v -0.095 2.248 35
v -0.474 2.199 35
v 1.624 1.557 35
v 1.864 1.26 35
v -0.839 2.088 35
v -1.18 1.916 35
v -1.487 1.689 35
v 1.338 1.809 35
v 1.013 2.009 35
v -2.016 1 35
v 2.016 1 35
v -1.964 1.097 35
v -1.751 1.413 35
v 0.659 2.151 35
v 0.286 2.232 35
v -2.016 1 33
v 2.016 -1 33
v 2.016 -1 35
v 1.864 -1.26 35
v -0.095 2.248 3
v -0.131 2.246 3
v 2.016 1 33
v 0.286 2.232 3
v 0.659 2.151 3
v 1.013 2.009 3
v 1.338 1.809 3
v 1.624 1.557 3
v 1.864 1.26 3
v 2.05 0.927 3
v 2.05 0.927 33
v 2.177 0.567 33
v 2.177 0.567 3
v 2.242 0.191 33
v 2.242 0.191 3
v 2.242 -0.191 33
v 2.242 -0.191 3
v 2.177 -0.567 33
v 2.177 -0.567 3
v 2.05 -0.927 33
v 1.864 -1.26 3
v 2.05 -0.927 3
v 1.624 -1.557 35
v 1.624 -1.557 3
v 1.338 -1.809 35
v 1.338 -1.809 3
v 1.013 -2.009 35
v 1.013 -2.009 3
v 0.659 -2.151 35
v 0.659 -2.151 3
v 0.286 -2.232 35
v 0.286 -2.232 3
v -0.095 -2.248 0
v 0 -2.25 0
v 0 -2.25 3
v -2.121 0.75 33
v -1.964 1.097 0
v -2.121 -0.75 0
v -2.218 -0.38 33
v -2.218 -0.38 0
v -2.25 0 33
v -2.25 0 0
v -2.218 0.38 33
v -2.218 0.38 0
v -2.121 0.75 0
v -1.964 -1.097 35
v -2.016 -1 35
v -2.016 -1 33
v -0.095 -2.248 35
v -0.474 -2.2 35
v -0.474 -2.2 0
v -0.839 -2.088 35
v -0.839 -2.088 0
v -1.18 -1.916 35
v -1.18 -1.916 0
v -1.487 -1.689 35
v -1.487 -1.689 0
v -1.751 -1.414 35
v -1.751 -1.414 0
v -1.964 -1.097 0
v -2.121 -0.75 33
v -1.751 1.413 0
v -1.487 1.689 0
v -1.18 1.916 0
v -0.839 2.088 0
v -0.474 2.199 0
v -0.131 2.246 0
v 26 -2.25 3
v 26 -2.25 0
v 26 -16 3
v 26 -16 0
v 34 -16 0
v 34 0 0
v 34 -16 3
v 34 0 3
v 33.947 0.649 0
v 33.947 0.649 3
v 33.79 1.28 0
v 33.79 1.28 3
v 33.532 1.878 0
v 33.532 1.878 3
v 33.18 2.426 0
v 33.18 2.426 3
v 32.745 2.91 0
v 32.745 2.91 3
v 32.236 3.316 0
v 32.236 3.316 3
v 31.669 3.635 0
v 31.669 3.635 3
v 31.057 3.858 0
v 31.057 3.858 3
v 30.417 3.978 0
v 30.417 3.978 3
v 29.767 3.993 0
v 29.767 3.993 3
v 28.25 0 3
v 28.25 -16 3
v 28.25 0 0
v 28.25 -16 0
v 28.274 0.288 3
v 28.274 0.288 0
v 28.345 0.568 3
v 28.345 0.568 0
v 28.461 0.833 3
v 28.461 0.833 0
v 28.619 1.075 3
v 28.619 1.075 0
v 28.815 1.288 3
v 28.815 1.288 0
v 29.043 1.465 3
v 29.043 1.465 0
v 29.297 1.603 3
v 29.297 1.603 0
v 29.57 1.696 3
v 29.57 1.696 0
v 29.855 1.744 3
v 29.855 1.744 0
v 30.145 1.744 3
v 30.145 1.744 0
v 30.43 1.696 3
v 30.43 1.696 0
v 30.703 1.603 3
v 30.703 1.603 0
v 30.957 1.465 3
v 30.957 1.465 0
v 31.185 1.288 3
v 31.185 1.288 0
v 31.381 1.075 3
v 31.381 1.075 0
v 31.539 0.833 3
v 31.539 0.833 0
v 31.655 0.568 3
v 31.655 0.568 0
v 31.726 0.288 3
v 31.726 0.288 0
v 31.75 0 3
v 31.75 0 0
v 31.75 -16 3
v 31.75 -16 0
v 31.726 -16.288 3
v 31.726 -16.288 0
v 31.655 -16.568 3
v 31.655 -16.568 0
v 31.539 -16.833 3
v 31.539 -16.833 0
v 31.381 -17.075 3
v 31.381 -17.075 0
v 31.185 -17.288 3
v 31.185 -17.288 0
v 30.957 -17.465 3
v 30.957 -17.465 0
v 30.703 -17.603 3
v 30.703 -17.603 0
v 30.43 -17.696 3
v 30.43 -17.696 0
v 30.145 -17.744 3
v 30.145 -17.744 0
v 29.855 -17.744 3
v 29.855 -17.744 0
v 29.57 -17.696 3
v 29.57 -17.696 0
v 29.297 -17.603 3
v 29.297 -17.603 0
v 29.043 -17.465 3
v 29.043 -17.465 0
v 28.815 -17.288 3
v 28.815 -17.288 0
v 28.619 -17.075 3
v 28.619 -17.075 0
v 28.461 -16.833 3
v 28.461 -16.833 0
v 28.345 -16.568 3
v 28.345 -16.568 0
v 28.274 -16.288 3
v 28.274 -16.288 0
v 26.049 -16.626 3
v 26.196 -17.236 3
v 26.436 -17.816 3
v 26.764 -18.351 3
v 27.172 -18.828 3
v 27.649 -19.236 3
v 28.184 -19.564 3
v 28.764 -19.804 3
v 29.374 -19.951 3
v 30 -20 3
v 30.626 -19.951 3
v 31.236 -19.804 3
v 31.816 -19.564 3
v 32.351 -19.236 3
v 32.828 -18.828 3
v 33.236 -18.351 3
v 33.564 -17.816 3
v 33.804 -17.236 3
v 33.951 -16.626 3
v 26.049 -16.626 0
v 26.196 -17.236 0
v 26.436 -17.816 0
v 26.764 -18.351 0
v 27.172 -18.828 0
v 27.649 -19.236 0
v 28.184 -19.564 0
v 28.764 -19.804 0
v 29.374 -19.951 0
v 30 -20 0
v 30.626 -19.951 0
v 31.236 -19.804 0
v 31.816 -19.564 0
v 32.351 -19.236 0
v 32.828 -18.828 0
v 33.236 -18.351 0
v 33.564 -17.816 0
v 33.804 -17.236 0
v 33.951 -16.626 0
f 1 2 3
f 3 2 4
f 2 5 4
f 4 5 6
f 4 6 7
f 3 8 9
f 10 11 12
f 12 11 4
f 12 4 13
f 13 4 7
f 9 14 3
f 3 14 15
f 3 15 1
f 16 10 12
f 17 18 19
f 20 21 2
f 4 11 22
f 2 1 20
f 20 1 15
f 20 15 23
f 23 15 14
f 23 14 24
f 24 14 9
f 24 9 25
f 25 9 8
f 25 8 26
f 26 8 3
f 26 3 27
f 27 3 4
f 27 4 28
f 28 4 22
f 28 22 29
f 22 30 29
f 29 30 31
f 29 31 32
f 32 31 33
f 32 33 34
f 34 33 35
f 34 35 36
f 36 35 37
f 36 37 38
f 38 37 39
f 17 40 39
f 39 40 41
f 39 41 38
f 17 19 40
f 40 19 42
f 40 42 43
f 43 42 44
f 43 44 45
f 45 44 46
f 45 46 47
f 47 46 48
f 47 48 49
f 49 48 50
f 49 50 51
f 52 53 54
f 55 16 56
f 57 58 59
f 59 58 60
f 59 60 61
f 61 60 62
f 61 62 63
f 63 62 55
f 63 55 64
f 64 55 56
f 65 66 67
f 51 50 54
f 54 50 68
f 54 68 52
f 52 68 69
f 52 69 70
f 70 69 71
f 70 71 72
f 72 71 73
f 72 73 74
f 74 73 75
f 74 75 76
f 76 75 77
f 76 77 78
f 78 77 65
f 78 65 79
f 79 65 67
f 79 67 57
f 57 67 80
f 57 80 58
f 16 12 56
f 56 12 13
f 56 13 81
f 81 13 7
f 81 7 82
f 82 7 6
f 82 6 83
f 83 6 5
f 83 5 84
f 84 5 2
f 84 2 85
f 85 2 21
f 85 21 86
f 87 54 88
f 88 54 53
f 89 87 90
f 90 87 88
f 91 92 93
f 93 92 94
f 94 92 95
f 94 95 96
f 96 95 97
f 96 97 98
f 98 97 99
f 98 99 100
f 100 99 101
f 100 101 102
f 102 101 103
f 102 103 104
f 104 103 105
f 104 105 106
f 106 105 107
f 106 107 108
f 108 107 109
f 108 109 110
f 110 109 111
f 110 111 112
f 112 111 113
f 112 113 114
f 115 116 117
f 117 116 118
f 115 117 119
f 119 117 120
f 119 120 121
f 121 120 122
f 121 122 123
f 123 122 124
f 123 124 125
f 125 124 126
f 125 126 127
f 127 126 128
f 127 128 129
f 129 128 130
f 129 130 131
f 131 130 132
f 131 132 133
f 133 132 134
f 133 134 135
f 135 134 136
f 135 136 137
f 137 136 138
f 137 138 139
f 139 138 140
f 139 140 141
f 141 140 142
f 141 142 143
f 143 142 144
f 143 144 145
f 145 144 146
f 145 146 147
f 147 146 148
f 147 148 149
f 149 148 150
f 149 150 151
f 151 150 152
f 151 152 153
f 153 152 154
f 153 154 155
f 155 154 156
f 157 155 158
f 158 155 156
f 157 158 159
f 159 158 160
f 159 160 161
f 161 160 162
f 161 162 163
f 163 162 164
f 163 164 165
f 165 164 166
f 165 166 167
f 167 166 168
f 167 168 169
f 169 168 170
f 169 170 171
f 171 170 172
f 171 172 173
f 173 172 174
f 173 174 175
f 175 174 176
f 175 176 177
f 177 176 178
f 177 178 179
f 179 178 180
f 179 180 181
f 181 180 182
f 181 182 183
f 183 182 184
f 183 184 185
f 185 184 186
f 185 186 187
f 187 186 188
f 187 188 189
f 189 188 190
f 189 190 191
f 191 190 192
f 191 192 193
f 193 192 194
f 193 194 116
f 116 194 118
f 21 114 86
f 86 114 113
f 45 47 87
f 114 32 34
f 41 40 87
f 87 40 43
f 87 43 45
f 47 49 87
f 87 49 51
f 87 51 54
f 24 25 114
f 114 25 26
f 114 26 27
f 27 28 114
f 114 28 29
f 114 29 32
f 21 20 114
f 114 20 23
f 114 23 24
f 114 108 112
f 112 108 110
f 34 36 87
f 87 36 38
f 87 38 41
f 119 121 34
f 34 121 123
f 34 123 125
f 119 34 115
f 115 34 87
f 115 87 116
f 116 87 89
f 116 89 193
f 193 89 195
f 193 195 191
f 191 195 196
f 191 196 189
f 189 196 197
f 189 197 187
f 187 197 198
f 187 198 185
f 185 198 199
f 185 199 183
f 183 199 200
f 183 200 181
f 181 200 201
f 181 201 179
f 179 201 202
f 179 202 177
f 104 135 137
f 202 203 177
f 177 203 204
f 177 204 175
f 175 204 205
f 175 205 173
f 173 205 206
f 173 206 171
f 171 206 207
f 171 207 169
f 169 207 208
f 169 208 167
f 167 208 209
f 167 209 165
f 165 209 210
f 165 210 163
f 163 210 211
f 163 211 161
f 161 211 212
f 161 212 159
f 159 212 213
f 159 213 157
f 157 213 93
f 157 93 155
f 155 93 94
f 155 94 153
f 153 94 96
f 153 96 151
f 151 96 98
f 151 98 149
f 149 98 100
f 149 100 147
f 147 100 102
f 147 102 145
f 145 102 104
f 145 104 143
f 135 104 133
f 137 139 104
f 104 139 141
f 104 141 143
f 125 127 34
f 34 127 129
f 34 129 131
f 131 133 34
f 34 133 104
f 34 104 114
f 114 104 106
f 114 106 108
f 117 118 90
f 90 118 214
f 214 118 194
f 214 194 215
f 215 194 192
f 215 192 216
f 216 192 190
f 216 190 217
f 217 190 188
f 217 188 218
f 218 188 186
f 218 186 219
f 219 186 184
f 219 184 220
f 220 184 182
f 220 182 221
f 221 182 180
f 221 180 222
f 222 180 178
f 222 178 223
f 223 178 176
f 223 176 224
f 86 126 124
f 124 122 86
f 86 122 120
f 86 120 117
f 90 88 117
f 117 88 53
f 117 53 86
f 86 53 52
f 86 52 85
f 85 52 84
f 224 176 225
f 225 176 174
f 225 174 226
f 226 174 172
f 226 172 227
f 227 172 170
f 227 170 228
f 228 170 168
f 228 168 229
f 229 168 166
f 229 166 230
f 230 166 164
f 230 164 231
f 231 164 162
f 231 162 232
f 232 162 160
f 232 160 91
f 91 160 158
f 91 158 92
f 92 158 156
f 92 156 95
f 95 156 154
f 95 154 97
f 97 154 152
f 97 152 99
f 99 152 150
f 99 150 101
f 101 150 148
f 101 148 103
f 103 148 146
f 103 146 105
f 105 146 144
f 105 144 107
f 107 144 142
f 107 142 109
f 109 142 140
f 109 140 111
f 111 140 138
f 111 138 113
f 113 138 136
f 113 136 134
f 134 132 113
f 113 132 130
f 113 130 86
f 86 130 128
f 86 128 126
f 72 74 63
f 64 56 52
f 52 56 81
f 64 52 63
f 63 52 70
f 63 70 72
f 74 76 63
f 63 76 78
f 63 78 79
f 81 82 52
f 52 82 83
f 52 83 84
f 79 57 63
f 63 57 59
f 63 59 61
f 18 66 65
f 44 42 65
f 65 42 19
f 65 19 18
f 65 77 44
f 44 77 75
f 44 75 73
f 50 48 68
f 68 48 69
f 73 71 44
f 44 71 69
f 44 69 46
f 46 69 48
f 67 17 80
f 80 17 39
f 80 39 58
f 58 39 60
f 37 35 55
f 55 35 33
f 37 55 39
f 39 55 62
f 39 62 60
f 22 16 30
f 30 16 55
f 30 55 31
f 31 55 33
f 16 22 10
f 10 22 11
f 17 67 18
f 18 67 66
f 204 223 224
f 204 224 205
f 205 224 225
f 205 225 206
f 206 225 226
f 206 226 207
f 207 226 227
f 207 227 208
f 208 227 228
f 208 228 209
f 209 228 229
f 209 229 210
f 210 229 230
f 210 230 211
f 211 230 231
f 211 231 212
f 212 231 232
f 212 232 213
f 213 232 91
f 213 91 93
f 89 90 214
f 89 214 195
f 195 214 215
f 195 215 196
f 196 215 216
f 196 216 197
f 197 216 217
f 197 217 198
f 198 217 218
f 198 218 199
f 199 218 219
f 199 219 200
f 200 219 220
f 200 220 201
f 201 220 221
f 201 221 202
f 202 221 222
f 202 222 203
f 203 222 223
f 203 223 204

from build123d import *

# Parameters (mm, degrees)
EXTRUDE_1_DEPTH     = 3
SKETCH_1_3_R        = 2.25
EXTRUDE_2_DEPTH     = 35
SKETCH_2_W          = 5
SKETCH_2_H          = 2
CUT_EXTRUDE_1_DEPTH = 2
FILLET_1_R          = 4


with BuildPart() as part:
    # 草图1 → 凸台-拉伸1 (new body)
    with BuildSketch(Plane.XY):
        with BuildLine():
            Line((29.766666667, 3.993188645), (-0.13125, 2.246168613))
            ThreePointArc((-0.13125, 2.246168613), (-2.249041949, -0.065652955), (0, -2.25))
            Line((0, -2.25), (26, -2.25))
            Line((26, -2.25), (26, -20))
            Line((26, -20), (34, -20))
            Line((34, -20), (34, 0))
            ThreePointArc((34, 0), (32.744691847, 2.909753712), (29.766666667, 3.993188645))
        make_face()
        with BuildLine():
            Line((28.25, -16), (28.25, 0))
            ThreePointArc((28.25, 0), (30, 1.75), (31.75, 0))
            Line((31.75, 0), (31.75, -16))
            ThreePointArc((31.75, -16), (30, -17.75), (28.25, -16))
        make_face(mode=Mode.SUBTRACT)
    extrude(amount=EXTRUDE_1_DEPTH)

    # 草图1<3> → 凸台-拉伸2 (add)
    with BuildSketch(Plane.XY):
        with Locations(Location((0, 0, 0), (0, 0, 93.344152204))):
            Circle(SKETCH_1_3_R)
    extrude(amount=EXTRUDE_2_DEPTH)

    # 草图2 → 切除-拉伸1 (cut)
    with BuildSketch(Plane.XY.offset(35)):
        Rectangle(SKETCH_2_W, SKETCH_2_H)
    extrude(amount=-CUT_EXTRUDE_1_DEPTH, mode=Mode.SUBTRACT)

    # 圆角1
    fillet_1_edges = [part.edges().sort_by_distance(p)[0] for p in [
        (26, -20, 1.5),
        (34, -20, 1.5),
    ]]
    fillet(fillet_1_edges, radius=FILLET_1_R - 0.0001)  # a hair under: the kernel refuses the full size


solid = part.part
